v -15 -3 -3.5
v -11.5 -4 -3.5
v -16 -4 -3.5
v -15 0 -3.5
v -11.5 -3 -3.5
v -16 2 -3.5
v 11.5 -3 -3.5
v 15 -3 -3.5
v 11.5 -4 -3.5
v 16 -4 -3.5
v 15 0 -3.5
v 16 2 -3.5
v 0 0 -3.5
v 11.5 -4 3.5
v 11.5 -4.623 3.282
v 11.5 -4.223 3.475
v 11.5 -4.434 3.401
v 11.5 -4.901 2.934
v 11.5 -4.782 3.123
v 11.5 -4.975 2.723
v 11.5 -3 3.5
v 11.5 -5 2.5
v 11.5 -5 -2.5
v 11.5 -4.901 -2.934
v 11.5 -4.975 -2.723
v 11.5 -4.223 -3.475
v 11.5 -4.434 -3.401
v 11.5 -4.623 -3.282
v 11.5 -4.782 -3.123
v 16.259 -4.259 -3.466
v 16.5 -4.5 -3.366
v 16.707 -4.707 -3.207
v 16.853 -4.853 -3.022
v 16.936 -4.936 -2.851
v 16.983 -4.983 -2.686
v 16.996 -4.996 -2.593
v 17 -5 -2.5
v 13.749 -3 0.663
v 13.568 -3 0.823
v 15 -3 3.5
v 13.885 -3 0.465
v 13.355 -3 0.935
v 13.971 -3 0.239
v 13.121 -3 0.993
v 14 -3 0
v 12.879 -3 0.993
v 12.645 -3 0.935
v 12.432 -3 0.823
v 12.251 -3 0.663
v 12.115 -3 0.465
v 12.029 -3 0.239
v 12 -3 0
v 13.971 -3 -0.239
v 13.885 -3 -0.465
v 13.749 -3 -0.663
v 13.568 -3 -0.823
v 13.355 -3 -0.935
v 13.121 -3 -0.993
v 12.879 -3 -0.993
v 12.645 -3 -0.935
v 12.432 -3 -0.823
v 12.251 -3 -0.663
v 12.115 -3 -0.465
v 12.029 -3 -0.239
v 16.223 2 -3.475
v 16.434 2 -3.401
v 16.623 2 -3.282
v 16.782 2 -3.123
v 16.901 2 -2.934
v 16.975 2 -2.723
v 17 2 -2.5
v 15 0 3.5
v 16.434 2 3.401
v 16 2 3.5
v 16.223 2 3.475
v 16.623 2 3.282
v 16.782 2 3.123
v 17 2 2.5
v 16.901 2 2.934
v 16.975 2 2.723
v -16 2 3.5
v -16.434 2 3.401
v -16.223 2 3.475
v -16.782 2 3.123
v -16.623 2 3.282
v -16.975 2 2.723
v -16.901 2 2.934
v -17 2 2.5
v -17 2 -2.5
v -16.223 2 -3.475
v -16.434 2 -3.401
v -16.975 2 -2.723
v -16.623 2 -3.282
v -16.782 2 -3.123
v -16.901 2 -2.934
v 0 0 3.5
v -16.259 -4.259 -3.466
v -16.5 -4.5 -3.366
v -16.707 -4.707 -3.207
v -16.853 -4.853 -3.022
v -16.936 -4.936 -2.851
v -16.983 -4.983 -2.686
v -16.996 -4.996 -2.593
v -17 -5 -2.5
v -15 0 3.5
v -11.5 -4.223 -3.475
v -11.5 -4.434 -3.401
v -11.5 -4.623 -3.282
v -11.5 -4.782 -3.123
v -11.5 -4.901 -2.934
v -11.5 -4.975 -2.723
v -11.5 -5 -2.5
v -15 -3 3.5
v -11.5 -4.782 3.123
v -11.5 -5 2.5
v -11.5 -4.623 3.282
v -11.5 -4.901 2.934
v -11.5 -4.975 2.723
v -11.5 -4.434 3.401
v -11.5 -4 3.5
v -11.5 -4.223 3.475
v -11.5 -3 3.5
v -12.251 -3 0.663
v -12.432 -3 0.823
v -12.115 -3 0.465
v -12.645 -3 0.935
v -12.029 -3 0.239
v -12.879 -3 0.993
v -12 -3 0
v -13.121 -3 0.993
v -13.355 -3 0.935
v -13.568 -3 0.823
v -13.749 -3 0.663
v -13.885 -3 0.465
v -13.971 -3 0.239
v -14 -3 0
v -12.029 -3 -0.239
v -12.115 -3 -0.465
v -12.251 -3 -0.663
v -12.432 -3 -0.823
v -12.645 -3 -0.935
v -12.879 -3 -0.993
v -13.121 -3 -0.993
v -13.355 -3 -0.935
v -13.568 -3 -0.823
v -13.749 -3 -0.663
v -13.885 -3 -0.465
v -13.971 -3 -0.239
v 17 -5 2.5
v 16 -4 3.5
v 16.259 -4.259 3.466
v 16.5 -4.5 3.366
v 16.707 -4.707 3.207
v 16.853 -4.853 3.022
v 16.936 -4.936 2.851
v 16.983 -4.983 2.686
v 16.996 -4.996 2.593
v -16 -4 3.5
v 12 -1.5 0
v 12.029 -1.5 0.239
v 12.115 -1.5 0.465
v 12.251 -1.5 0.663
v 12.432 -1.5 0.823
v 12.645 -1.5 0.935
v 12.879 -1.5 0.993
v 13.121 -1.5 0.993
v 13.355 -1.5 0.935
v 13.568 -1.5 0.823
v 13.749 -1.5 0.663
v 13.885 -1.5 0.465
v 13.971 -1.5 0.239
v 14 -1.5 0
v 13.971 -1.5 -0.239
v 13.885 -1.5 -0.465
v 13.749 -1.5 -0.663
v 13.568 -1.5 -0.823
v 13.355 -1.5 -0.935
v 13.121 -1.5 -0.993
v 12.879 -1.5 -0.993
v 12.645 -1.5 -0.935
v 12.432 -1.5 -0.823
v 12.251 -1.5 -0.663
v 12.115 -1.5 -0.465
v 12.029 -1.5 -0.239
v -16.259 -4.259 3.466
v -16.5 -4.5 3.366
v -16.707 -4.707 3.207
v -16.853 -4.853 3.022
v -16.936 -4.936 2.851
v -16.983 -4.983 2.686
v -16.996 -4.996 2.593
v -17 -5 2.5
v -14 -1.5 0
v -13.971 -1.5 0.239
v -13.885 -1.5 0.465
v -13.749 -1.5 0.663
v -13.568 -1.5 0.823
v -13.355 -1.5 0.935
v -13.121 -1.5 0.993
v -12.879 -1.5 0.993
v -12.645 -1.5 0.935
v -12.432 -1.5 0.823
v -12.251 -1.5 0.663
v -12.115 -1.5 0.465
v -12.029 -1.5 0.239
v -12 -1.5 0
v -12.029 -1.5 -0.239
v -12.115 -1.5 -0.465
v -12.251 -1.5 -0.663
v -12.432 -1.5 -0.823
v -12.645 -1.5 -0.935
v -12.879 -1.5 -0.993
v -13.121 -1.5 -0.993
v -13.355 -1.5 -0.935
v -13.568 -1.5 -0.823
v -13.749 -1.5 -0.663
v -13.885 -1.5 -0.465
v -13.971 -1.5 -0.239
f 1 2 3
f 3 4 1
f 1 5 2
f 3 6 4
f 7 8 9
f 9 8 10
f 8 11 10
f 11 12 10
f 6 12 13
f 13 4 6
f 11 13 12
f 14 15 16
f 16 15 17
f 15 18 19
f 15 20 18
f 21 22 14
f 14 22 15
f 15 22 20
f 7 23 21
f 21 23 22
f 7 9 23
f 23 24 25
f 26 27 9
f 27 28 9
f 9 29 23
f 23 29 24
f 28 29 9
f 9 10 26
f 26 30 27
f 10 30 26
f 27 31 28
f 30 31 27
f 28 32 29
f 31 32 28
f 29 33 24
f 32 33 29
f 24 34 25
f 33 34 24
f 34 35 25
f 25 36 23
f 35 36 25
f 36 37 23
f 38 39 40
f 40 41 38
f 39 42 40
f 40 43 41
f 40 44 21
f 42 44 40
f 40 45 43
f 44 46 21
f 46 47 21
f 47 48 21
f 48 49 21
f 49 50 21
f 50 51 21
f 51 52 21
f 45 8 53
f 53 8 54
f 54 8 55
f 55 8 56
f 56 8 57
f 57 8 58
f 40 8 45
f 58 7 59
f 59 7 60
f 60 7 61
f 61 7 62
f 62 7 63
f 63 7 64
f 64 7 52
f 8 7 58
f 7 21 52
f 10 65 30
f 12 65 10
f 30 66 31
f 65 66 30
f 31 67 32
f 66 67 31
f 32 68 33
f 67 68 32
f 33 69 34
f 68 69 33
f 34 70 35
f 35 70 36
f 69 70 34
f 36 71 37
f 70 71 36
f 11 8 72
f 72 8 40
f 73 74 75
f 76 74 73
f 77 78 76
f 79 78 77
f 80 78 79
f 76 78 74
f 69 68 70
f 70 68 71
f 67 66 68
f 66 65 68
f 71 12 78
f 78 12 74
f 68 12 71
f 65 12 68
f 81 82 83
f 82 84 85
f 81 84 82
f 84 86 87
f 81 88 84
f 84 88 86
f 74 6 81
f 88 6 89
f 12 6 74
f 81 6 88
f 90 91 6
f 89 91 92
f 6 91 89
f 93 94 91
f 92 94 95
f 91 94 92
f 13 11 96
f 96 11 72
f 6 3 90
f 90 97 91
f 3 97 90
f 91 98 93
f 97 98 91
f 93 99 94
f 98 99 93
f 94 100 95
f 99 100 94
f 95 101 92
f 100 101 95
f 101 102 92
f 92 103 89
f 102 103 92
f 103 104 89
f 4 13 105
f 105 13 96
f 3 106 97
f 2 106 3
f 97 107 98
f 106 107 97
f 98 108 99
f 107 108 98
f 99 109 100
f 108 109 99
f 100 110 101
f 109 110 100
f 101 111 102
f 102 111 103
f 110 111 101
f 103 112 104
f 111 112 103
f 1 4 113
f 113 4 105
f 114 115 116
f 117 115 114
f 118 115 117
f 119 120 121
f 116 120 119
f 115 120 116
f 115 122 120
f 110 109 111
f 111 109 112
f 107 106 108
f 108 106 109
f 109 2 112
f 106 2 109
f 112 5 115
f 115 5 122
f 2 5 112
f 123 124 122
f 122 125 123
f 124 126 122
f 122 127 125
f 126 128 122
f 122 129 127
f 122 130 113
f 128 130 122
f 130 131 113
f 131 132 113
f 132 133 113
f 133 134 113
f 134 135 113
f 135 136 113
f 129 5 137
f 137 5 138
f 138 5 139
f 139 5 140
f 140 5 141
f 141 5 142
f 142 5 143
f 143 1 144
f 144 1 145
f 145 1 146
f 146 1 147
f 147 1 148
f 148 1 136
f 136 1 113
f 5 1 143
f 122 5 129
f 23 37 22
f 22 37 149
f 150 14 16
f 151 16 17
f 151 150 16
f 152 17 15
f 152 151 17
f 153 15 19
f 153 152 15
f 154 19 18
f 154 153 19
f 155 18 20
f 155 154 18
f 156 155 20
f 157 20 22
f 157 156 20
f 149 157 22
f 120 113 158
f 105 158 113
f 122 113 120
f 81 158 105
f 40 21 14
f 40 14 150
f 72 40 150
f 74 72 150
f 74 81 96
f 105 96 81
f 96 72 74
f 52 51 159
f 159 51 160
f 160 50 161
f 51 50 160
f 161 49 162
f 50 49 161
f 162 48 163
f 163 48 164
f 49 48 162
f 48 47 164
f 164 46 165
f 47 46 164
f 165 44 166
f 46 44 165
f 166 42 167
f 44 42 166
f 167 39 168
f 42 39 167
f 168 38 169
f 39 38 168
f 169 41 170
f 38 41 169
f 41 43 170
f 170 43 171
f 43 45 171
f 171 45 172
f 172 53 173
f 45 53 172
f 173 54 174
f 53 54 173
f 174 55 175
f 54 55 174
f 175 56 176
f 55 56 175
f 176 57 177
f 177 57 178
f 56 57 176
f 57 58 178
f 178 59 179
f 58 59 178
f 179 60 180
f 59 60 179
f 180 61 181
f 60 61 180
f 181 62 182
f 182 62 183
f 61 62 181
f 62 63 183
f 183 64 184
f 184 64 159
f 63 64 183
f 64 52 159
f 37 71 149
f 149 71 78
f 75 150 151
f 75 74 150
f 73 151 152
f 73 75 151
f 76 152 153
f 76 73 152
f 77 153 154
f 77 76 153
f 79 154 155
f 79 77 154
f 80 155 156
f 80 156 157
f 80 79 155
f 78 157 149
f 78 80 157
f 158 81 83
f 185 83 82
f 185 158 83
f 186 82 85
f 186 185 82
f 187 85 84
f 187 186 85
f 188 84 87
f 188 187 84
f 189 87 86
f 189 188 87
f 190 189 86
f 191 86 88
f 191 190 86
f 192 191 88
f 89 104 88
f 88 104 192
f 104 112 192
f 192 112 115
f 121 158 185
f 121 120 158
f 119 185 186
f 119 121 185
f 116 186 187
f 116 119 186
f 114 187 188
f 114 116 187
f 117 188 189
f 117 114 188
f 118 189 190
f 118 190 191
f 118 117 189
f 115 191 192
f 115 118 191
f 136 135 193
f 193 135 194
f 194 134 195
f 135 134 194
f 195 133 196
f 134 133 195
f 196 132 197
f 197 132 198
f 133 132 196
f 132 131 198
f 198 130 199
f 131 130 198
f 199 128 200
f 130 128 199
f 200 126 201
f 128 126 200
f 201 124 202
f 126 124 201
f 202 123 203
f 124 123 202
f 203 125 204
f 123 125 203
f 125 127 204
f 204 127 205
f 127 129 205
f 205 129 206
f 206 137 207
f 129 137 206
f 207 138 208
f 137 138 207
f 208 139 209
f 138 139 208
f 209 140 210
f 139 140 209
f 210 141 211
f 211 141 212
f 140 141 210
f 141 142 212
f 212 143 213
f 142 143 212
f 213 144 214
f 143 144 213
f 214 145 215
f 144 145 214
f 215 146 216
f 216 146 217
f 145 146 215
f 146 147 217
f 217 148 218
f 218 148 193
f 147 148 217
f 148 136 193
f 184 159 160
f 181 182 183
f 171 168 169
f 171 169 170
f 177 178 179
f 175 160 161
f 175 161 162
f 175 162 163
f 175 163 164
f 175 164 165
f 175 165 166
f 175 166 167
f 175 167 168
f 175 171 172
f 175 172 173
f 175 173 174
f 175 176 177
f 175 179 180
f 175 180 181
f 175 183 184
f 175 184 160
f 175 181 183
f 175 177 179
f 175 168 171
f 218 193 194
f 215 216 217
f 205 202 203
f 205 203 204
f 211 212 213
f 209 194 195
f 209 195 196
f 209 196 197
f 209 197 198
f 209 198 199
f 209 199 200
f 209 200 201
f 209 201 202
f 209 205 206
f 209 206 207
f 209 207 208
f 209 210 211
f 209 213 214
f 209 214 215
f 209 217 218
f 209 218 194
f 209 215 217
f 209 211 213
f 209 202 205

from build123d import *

# Parameters (mm, degrees)
PAD_DEPTH    = 3.5
SKETCH001_R  = 1
PAD001_DEPTH = 1.5
FILLET_R     = 1


with BuildPart() as part:
    # Sketch → Pad (new body, symmetric)
    with BuildSketch(Plane.XY):
        Polygon((0, 0), (15, 0), (15, -3), (11.5, -3), (11.5, -5), (17, -5), (17, 2), (-17, 2), (-17, -5), (-11.5, -5), (-11.5, -3), (-15, -3), (-15, 0), align=None)
    extrude(amount=PAD_DEPTH, both=True)

    # Sketch001 (on Face11 of Pad) → Pad001 (join)
    with BuildSketch(Plane(origin=(0, -3, 0), x_dir=(-1, 0, 0), z_dir=(0, 1, 0))):
        with Locations((-13, 0)):
            Circle(SKETCH001_R)
        with Locations((13, 0)):
            Circle(SKETCH001_R)
    extrude(amount=PAD001_DEPTH)

    # Fillet
    fillet_edges = [part.edges().sort_by_distance(p)[0] for p in [
        (14.25, -5, 3.5),
        (-14.25, -5, 3.5),
        (-14.25, -5, -3.5),
        (14.25, -5, -3.5),
        (-17, -1.5, 3.5),
        (17, -1.5, 3.5),
        (17, -1.5, -3.5),
        (-17, -1.5, -3.5),
    ]]
    fillet(fillet_edges, radius=FILLET_R)


solid = part.part
